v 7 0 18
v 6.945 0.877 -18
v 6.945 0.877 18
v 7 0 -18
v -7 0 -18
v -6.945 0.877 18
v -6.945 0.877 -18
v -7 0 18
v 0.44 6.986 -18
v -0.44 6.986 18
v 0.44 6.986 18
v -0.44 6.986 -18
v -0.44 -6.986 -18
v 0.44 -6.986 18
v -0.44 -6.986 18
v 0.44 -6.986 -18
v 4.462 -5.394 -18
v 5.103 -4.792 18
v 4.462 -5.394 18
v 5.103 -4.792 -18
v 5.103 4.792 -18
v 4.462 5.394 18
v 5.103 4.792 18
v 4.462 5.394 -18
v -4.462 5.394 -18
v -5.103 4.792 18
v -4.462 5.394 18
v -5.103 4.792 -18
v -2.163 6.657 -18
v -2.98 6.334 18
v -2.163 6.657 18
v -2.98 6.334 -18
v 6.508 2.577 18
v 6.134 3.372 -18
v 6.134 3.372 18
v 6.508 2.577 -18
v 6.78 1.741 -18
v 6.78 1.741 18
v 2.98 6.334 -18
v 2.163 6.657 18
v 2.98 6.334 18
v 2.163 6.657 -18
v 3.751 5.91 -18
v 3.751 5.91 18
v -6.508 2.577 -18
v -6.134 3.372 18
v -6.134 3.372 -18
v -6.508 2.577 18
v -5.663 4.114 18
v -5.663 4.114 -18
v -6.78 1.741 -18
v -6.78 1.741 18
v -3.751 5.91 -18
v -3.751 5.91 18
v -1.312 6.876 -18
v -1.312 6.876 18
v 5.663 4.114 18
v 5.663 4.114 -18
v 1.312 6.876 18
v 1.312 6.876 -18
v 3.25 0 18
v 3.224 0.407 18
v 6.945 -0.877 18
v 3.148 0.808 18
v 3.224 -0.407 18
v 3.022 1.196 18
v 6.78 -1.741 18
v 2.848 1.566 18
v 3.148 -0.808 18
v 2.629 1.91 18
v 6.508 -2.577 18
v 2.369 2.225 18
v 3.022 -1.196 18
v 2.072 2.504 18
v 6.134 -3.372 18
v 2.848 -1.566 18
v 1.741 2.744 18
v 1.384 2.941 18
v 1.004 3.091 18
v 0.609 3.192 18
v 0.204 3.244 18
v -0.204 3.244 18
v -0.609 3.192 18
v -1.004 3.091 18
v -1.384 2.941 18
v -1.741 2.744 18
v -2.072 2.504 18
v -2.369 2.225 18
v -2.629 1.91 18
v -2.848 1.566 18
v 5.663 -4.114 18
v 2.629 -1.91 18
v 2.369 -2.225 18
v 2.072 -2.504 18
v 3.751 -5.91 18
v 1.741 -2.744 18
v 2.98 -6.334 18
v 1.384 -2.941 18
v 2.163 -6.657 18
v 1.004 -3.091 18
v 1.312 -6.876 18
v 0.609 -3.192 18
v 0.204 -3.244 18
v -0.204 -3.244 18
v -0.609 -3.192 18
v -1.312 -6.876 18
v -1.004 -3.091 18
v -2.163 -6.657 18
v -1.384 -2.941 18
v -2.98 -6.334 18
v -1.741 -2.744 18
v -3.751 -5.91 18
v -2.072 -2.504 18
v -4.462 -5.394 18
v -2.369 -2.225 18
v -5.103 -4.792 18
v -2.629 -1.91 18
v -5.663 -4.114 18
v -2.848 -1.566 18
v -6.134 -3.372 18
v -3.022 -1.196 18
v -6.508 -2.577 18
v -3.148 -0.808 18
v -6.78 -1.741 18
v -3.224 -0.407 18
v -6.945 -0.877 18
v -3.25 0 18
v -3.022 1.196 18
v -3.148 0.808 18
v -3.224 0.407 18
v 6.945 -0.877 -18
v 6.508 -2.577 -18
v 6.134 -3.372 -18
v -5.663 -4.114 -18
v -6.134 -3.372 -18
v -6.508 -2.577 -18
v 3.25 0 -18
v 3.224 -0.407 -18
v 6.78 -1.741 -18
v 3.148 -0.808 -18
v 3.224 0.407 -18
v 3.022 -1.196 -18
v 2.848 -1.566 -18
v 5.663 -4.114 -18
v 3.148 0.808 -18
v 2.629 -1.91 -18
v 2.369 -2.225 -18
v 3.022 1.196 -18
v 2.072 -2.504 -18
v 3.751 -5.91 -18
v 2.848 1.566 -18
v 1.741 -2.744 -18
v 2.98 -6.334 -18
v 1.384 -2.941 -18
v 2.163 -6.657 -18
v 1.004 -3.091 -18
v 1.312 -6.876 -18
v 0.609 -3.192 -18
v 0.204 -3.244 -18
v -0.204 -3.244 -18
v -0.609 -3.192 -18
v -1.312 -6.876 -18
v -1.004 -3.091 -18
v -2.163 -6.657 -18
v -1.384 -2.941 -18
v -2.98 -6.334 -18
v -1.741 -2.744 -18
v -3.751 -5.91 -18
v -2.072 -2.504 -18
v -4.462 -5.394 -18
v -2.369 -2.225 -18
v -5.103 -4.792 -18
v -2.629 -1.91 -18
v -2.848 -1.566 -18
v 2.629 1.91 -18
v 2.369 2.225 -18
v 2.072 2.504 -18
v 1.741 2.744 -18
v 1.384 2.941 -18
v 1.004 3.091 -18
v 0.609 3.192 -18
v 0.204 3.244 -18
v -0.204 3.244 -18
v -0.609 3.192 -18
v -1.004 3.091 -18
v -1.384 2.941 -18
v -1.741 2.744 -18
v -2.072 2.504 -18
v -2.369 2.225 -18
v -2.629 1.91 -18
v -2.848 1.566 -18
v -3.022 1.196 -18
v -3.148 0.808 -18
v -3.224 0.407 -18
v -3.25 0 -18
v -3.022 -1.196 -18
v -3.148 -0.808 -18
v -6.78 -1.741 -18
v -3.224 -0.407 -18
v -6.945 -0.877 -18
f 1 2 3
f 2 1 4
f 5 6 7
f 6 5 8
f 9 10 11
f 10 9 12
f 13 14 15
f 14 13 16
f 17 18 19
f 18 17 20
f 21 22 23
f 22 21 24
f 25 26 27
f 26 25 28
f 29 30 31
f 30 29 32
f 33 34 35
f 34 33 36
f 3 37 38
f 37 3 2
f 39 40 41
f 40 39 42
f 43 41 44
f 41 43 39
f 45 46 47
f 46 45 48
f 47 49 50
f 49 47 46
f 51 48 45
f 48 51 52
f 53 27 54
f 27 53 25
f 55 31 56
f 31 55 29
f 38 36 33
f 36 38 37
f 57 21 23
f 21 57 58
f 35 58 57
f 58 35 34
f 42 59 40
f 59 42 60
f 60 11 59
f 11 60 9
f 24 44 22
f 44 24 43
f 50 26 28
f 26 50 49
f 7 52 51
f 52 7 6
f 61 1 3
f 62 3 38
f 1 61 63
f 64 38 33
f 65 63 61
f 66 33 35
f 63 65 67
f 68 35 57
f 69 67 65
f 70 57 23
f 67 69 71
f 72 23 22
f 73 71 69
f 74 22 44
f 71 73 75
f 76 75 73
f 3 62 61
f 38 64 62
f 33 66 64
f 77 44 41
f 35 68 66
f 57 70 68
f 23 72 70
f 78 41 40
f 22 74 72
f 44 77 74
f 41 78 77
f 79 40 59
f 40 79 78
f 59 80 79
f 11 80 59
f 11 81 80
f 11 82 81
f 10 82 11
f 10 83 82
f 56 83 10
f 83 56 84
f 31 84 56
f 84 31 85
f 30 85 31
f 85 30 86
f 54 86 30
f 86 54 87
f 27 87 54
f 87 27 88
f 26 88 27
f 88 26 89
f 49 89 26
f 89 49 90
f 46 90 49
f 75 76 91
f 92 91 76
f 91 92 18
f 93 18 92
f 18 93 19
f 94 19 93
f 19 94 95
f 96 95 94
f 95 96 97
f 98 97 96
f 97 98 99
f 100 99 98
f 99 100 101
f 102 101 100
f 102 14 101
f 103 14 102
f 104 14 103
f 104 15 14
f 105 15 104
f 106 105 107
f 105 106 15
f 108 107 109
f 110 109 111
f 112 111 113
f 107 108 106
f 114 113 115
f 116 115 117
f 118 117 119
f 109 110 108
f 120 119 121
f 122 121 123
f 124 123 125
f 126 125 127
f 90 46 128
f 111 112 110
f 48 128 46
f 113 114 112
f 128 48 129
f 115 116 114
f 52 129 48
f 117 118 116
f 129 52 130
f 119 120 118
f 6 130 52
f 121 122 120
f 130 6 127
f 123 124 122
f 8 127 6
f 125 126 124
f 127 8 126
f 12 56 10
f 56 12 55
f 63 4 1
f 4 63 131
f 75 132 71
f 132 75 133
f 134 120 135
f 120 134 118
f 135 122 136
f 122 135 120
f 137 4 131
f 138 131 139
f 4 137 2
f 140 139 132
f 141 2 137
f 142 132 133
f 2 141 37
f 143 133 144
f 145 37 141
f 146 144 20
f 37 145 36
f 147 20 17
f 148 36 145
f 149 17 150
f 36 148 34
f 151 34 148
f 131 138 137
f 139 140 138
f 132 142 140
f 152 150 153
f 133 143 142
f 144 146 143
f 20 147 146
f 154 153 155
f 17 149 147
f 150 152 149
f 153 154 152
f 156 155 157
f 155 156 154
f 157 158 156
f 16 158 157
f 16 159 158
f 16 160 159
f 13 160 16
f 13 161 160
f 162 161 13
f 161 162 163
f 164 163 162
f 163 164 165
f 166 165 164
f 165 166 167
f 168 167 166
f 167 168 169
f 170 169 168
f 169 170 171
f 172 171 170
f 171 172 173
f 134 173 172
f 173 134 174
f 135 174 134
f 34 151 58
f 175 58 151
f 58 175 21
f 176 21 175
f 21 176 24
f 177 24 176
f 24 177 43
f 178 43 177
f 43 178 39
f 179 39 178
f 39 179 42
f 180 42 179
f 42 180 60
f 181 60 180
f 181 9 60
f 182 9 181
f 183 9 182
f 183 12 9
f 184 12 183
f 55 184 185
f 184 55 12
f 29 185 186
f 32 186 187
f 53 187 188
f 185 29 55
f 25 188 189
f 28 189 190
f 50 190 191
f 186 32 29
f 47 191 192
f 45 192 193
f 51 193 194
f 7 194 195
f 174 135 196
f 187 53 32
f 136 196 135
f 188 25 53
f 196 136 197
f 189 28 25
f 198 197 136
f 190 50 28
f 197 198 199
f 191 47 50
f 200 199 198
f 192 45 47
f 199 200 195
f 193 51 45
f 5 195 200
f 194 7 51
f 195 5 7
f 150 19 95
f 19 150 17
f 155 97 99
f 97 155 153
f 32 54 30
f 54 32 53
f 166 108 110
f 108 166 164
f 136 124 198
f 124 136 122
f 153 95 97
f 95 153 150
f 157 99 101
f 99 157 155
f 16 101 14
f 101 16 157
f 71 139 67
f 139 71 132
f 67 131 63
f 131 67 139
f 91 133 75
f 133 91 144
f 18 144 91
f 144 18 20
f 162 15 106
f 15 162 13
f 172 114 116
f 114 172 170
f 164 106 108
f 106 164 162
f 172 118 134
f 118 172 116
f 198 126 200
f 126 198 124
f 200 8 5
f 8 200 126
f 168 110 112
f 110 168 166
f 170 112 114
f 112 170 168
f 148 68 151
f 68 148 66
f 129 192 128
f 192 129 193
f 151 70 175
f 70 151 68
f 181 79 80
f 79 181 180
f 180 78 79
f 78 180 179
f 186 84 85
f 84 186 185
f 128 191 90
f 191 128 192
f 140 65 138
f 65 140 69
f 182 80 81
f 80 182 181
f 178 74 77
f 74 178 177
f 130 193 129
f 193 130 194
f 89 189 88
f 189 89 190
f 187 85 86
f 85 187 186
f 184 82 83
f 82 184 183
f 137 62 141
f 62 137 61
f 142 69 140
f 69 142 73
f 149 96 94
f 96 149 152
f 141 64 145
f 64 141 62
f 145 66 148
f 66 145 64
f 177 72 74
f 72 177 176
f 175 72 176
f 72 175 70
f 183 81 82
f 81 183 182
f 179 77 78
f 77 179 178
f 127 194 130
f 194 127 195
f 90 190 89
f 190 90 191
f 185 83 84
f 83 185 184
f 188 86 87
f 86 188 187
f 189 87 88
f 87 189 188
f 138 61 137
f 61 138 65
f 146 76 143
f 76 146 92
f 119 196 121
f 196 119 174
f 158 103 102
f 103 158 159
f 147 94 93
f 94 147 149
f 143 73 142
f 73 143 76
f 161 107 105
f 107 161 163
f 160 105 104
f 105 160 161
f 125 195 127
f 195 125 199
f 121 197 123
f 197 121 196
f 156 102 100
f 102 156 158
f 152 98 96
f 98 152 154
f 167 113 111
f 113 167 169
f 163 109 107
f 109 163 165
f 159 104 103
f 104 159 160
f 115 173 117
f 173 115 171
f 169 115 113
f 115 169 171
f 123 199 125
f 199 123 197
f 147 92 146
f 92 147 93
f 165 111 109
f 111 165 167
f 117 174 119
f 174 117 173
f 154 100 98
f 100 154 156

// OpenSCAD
$fn = 50;


difference() {
	union() {
		translate(v = [0, 0, -18.0000000000]) {
			cylinder(h = 36, r = 7.0000000000);
		}
	}
	union() {
		translate(v = [0, 0, -100.0000000000]) {
			cylinder(h = 200, r = 3.2500000000);
		}
	}
}
